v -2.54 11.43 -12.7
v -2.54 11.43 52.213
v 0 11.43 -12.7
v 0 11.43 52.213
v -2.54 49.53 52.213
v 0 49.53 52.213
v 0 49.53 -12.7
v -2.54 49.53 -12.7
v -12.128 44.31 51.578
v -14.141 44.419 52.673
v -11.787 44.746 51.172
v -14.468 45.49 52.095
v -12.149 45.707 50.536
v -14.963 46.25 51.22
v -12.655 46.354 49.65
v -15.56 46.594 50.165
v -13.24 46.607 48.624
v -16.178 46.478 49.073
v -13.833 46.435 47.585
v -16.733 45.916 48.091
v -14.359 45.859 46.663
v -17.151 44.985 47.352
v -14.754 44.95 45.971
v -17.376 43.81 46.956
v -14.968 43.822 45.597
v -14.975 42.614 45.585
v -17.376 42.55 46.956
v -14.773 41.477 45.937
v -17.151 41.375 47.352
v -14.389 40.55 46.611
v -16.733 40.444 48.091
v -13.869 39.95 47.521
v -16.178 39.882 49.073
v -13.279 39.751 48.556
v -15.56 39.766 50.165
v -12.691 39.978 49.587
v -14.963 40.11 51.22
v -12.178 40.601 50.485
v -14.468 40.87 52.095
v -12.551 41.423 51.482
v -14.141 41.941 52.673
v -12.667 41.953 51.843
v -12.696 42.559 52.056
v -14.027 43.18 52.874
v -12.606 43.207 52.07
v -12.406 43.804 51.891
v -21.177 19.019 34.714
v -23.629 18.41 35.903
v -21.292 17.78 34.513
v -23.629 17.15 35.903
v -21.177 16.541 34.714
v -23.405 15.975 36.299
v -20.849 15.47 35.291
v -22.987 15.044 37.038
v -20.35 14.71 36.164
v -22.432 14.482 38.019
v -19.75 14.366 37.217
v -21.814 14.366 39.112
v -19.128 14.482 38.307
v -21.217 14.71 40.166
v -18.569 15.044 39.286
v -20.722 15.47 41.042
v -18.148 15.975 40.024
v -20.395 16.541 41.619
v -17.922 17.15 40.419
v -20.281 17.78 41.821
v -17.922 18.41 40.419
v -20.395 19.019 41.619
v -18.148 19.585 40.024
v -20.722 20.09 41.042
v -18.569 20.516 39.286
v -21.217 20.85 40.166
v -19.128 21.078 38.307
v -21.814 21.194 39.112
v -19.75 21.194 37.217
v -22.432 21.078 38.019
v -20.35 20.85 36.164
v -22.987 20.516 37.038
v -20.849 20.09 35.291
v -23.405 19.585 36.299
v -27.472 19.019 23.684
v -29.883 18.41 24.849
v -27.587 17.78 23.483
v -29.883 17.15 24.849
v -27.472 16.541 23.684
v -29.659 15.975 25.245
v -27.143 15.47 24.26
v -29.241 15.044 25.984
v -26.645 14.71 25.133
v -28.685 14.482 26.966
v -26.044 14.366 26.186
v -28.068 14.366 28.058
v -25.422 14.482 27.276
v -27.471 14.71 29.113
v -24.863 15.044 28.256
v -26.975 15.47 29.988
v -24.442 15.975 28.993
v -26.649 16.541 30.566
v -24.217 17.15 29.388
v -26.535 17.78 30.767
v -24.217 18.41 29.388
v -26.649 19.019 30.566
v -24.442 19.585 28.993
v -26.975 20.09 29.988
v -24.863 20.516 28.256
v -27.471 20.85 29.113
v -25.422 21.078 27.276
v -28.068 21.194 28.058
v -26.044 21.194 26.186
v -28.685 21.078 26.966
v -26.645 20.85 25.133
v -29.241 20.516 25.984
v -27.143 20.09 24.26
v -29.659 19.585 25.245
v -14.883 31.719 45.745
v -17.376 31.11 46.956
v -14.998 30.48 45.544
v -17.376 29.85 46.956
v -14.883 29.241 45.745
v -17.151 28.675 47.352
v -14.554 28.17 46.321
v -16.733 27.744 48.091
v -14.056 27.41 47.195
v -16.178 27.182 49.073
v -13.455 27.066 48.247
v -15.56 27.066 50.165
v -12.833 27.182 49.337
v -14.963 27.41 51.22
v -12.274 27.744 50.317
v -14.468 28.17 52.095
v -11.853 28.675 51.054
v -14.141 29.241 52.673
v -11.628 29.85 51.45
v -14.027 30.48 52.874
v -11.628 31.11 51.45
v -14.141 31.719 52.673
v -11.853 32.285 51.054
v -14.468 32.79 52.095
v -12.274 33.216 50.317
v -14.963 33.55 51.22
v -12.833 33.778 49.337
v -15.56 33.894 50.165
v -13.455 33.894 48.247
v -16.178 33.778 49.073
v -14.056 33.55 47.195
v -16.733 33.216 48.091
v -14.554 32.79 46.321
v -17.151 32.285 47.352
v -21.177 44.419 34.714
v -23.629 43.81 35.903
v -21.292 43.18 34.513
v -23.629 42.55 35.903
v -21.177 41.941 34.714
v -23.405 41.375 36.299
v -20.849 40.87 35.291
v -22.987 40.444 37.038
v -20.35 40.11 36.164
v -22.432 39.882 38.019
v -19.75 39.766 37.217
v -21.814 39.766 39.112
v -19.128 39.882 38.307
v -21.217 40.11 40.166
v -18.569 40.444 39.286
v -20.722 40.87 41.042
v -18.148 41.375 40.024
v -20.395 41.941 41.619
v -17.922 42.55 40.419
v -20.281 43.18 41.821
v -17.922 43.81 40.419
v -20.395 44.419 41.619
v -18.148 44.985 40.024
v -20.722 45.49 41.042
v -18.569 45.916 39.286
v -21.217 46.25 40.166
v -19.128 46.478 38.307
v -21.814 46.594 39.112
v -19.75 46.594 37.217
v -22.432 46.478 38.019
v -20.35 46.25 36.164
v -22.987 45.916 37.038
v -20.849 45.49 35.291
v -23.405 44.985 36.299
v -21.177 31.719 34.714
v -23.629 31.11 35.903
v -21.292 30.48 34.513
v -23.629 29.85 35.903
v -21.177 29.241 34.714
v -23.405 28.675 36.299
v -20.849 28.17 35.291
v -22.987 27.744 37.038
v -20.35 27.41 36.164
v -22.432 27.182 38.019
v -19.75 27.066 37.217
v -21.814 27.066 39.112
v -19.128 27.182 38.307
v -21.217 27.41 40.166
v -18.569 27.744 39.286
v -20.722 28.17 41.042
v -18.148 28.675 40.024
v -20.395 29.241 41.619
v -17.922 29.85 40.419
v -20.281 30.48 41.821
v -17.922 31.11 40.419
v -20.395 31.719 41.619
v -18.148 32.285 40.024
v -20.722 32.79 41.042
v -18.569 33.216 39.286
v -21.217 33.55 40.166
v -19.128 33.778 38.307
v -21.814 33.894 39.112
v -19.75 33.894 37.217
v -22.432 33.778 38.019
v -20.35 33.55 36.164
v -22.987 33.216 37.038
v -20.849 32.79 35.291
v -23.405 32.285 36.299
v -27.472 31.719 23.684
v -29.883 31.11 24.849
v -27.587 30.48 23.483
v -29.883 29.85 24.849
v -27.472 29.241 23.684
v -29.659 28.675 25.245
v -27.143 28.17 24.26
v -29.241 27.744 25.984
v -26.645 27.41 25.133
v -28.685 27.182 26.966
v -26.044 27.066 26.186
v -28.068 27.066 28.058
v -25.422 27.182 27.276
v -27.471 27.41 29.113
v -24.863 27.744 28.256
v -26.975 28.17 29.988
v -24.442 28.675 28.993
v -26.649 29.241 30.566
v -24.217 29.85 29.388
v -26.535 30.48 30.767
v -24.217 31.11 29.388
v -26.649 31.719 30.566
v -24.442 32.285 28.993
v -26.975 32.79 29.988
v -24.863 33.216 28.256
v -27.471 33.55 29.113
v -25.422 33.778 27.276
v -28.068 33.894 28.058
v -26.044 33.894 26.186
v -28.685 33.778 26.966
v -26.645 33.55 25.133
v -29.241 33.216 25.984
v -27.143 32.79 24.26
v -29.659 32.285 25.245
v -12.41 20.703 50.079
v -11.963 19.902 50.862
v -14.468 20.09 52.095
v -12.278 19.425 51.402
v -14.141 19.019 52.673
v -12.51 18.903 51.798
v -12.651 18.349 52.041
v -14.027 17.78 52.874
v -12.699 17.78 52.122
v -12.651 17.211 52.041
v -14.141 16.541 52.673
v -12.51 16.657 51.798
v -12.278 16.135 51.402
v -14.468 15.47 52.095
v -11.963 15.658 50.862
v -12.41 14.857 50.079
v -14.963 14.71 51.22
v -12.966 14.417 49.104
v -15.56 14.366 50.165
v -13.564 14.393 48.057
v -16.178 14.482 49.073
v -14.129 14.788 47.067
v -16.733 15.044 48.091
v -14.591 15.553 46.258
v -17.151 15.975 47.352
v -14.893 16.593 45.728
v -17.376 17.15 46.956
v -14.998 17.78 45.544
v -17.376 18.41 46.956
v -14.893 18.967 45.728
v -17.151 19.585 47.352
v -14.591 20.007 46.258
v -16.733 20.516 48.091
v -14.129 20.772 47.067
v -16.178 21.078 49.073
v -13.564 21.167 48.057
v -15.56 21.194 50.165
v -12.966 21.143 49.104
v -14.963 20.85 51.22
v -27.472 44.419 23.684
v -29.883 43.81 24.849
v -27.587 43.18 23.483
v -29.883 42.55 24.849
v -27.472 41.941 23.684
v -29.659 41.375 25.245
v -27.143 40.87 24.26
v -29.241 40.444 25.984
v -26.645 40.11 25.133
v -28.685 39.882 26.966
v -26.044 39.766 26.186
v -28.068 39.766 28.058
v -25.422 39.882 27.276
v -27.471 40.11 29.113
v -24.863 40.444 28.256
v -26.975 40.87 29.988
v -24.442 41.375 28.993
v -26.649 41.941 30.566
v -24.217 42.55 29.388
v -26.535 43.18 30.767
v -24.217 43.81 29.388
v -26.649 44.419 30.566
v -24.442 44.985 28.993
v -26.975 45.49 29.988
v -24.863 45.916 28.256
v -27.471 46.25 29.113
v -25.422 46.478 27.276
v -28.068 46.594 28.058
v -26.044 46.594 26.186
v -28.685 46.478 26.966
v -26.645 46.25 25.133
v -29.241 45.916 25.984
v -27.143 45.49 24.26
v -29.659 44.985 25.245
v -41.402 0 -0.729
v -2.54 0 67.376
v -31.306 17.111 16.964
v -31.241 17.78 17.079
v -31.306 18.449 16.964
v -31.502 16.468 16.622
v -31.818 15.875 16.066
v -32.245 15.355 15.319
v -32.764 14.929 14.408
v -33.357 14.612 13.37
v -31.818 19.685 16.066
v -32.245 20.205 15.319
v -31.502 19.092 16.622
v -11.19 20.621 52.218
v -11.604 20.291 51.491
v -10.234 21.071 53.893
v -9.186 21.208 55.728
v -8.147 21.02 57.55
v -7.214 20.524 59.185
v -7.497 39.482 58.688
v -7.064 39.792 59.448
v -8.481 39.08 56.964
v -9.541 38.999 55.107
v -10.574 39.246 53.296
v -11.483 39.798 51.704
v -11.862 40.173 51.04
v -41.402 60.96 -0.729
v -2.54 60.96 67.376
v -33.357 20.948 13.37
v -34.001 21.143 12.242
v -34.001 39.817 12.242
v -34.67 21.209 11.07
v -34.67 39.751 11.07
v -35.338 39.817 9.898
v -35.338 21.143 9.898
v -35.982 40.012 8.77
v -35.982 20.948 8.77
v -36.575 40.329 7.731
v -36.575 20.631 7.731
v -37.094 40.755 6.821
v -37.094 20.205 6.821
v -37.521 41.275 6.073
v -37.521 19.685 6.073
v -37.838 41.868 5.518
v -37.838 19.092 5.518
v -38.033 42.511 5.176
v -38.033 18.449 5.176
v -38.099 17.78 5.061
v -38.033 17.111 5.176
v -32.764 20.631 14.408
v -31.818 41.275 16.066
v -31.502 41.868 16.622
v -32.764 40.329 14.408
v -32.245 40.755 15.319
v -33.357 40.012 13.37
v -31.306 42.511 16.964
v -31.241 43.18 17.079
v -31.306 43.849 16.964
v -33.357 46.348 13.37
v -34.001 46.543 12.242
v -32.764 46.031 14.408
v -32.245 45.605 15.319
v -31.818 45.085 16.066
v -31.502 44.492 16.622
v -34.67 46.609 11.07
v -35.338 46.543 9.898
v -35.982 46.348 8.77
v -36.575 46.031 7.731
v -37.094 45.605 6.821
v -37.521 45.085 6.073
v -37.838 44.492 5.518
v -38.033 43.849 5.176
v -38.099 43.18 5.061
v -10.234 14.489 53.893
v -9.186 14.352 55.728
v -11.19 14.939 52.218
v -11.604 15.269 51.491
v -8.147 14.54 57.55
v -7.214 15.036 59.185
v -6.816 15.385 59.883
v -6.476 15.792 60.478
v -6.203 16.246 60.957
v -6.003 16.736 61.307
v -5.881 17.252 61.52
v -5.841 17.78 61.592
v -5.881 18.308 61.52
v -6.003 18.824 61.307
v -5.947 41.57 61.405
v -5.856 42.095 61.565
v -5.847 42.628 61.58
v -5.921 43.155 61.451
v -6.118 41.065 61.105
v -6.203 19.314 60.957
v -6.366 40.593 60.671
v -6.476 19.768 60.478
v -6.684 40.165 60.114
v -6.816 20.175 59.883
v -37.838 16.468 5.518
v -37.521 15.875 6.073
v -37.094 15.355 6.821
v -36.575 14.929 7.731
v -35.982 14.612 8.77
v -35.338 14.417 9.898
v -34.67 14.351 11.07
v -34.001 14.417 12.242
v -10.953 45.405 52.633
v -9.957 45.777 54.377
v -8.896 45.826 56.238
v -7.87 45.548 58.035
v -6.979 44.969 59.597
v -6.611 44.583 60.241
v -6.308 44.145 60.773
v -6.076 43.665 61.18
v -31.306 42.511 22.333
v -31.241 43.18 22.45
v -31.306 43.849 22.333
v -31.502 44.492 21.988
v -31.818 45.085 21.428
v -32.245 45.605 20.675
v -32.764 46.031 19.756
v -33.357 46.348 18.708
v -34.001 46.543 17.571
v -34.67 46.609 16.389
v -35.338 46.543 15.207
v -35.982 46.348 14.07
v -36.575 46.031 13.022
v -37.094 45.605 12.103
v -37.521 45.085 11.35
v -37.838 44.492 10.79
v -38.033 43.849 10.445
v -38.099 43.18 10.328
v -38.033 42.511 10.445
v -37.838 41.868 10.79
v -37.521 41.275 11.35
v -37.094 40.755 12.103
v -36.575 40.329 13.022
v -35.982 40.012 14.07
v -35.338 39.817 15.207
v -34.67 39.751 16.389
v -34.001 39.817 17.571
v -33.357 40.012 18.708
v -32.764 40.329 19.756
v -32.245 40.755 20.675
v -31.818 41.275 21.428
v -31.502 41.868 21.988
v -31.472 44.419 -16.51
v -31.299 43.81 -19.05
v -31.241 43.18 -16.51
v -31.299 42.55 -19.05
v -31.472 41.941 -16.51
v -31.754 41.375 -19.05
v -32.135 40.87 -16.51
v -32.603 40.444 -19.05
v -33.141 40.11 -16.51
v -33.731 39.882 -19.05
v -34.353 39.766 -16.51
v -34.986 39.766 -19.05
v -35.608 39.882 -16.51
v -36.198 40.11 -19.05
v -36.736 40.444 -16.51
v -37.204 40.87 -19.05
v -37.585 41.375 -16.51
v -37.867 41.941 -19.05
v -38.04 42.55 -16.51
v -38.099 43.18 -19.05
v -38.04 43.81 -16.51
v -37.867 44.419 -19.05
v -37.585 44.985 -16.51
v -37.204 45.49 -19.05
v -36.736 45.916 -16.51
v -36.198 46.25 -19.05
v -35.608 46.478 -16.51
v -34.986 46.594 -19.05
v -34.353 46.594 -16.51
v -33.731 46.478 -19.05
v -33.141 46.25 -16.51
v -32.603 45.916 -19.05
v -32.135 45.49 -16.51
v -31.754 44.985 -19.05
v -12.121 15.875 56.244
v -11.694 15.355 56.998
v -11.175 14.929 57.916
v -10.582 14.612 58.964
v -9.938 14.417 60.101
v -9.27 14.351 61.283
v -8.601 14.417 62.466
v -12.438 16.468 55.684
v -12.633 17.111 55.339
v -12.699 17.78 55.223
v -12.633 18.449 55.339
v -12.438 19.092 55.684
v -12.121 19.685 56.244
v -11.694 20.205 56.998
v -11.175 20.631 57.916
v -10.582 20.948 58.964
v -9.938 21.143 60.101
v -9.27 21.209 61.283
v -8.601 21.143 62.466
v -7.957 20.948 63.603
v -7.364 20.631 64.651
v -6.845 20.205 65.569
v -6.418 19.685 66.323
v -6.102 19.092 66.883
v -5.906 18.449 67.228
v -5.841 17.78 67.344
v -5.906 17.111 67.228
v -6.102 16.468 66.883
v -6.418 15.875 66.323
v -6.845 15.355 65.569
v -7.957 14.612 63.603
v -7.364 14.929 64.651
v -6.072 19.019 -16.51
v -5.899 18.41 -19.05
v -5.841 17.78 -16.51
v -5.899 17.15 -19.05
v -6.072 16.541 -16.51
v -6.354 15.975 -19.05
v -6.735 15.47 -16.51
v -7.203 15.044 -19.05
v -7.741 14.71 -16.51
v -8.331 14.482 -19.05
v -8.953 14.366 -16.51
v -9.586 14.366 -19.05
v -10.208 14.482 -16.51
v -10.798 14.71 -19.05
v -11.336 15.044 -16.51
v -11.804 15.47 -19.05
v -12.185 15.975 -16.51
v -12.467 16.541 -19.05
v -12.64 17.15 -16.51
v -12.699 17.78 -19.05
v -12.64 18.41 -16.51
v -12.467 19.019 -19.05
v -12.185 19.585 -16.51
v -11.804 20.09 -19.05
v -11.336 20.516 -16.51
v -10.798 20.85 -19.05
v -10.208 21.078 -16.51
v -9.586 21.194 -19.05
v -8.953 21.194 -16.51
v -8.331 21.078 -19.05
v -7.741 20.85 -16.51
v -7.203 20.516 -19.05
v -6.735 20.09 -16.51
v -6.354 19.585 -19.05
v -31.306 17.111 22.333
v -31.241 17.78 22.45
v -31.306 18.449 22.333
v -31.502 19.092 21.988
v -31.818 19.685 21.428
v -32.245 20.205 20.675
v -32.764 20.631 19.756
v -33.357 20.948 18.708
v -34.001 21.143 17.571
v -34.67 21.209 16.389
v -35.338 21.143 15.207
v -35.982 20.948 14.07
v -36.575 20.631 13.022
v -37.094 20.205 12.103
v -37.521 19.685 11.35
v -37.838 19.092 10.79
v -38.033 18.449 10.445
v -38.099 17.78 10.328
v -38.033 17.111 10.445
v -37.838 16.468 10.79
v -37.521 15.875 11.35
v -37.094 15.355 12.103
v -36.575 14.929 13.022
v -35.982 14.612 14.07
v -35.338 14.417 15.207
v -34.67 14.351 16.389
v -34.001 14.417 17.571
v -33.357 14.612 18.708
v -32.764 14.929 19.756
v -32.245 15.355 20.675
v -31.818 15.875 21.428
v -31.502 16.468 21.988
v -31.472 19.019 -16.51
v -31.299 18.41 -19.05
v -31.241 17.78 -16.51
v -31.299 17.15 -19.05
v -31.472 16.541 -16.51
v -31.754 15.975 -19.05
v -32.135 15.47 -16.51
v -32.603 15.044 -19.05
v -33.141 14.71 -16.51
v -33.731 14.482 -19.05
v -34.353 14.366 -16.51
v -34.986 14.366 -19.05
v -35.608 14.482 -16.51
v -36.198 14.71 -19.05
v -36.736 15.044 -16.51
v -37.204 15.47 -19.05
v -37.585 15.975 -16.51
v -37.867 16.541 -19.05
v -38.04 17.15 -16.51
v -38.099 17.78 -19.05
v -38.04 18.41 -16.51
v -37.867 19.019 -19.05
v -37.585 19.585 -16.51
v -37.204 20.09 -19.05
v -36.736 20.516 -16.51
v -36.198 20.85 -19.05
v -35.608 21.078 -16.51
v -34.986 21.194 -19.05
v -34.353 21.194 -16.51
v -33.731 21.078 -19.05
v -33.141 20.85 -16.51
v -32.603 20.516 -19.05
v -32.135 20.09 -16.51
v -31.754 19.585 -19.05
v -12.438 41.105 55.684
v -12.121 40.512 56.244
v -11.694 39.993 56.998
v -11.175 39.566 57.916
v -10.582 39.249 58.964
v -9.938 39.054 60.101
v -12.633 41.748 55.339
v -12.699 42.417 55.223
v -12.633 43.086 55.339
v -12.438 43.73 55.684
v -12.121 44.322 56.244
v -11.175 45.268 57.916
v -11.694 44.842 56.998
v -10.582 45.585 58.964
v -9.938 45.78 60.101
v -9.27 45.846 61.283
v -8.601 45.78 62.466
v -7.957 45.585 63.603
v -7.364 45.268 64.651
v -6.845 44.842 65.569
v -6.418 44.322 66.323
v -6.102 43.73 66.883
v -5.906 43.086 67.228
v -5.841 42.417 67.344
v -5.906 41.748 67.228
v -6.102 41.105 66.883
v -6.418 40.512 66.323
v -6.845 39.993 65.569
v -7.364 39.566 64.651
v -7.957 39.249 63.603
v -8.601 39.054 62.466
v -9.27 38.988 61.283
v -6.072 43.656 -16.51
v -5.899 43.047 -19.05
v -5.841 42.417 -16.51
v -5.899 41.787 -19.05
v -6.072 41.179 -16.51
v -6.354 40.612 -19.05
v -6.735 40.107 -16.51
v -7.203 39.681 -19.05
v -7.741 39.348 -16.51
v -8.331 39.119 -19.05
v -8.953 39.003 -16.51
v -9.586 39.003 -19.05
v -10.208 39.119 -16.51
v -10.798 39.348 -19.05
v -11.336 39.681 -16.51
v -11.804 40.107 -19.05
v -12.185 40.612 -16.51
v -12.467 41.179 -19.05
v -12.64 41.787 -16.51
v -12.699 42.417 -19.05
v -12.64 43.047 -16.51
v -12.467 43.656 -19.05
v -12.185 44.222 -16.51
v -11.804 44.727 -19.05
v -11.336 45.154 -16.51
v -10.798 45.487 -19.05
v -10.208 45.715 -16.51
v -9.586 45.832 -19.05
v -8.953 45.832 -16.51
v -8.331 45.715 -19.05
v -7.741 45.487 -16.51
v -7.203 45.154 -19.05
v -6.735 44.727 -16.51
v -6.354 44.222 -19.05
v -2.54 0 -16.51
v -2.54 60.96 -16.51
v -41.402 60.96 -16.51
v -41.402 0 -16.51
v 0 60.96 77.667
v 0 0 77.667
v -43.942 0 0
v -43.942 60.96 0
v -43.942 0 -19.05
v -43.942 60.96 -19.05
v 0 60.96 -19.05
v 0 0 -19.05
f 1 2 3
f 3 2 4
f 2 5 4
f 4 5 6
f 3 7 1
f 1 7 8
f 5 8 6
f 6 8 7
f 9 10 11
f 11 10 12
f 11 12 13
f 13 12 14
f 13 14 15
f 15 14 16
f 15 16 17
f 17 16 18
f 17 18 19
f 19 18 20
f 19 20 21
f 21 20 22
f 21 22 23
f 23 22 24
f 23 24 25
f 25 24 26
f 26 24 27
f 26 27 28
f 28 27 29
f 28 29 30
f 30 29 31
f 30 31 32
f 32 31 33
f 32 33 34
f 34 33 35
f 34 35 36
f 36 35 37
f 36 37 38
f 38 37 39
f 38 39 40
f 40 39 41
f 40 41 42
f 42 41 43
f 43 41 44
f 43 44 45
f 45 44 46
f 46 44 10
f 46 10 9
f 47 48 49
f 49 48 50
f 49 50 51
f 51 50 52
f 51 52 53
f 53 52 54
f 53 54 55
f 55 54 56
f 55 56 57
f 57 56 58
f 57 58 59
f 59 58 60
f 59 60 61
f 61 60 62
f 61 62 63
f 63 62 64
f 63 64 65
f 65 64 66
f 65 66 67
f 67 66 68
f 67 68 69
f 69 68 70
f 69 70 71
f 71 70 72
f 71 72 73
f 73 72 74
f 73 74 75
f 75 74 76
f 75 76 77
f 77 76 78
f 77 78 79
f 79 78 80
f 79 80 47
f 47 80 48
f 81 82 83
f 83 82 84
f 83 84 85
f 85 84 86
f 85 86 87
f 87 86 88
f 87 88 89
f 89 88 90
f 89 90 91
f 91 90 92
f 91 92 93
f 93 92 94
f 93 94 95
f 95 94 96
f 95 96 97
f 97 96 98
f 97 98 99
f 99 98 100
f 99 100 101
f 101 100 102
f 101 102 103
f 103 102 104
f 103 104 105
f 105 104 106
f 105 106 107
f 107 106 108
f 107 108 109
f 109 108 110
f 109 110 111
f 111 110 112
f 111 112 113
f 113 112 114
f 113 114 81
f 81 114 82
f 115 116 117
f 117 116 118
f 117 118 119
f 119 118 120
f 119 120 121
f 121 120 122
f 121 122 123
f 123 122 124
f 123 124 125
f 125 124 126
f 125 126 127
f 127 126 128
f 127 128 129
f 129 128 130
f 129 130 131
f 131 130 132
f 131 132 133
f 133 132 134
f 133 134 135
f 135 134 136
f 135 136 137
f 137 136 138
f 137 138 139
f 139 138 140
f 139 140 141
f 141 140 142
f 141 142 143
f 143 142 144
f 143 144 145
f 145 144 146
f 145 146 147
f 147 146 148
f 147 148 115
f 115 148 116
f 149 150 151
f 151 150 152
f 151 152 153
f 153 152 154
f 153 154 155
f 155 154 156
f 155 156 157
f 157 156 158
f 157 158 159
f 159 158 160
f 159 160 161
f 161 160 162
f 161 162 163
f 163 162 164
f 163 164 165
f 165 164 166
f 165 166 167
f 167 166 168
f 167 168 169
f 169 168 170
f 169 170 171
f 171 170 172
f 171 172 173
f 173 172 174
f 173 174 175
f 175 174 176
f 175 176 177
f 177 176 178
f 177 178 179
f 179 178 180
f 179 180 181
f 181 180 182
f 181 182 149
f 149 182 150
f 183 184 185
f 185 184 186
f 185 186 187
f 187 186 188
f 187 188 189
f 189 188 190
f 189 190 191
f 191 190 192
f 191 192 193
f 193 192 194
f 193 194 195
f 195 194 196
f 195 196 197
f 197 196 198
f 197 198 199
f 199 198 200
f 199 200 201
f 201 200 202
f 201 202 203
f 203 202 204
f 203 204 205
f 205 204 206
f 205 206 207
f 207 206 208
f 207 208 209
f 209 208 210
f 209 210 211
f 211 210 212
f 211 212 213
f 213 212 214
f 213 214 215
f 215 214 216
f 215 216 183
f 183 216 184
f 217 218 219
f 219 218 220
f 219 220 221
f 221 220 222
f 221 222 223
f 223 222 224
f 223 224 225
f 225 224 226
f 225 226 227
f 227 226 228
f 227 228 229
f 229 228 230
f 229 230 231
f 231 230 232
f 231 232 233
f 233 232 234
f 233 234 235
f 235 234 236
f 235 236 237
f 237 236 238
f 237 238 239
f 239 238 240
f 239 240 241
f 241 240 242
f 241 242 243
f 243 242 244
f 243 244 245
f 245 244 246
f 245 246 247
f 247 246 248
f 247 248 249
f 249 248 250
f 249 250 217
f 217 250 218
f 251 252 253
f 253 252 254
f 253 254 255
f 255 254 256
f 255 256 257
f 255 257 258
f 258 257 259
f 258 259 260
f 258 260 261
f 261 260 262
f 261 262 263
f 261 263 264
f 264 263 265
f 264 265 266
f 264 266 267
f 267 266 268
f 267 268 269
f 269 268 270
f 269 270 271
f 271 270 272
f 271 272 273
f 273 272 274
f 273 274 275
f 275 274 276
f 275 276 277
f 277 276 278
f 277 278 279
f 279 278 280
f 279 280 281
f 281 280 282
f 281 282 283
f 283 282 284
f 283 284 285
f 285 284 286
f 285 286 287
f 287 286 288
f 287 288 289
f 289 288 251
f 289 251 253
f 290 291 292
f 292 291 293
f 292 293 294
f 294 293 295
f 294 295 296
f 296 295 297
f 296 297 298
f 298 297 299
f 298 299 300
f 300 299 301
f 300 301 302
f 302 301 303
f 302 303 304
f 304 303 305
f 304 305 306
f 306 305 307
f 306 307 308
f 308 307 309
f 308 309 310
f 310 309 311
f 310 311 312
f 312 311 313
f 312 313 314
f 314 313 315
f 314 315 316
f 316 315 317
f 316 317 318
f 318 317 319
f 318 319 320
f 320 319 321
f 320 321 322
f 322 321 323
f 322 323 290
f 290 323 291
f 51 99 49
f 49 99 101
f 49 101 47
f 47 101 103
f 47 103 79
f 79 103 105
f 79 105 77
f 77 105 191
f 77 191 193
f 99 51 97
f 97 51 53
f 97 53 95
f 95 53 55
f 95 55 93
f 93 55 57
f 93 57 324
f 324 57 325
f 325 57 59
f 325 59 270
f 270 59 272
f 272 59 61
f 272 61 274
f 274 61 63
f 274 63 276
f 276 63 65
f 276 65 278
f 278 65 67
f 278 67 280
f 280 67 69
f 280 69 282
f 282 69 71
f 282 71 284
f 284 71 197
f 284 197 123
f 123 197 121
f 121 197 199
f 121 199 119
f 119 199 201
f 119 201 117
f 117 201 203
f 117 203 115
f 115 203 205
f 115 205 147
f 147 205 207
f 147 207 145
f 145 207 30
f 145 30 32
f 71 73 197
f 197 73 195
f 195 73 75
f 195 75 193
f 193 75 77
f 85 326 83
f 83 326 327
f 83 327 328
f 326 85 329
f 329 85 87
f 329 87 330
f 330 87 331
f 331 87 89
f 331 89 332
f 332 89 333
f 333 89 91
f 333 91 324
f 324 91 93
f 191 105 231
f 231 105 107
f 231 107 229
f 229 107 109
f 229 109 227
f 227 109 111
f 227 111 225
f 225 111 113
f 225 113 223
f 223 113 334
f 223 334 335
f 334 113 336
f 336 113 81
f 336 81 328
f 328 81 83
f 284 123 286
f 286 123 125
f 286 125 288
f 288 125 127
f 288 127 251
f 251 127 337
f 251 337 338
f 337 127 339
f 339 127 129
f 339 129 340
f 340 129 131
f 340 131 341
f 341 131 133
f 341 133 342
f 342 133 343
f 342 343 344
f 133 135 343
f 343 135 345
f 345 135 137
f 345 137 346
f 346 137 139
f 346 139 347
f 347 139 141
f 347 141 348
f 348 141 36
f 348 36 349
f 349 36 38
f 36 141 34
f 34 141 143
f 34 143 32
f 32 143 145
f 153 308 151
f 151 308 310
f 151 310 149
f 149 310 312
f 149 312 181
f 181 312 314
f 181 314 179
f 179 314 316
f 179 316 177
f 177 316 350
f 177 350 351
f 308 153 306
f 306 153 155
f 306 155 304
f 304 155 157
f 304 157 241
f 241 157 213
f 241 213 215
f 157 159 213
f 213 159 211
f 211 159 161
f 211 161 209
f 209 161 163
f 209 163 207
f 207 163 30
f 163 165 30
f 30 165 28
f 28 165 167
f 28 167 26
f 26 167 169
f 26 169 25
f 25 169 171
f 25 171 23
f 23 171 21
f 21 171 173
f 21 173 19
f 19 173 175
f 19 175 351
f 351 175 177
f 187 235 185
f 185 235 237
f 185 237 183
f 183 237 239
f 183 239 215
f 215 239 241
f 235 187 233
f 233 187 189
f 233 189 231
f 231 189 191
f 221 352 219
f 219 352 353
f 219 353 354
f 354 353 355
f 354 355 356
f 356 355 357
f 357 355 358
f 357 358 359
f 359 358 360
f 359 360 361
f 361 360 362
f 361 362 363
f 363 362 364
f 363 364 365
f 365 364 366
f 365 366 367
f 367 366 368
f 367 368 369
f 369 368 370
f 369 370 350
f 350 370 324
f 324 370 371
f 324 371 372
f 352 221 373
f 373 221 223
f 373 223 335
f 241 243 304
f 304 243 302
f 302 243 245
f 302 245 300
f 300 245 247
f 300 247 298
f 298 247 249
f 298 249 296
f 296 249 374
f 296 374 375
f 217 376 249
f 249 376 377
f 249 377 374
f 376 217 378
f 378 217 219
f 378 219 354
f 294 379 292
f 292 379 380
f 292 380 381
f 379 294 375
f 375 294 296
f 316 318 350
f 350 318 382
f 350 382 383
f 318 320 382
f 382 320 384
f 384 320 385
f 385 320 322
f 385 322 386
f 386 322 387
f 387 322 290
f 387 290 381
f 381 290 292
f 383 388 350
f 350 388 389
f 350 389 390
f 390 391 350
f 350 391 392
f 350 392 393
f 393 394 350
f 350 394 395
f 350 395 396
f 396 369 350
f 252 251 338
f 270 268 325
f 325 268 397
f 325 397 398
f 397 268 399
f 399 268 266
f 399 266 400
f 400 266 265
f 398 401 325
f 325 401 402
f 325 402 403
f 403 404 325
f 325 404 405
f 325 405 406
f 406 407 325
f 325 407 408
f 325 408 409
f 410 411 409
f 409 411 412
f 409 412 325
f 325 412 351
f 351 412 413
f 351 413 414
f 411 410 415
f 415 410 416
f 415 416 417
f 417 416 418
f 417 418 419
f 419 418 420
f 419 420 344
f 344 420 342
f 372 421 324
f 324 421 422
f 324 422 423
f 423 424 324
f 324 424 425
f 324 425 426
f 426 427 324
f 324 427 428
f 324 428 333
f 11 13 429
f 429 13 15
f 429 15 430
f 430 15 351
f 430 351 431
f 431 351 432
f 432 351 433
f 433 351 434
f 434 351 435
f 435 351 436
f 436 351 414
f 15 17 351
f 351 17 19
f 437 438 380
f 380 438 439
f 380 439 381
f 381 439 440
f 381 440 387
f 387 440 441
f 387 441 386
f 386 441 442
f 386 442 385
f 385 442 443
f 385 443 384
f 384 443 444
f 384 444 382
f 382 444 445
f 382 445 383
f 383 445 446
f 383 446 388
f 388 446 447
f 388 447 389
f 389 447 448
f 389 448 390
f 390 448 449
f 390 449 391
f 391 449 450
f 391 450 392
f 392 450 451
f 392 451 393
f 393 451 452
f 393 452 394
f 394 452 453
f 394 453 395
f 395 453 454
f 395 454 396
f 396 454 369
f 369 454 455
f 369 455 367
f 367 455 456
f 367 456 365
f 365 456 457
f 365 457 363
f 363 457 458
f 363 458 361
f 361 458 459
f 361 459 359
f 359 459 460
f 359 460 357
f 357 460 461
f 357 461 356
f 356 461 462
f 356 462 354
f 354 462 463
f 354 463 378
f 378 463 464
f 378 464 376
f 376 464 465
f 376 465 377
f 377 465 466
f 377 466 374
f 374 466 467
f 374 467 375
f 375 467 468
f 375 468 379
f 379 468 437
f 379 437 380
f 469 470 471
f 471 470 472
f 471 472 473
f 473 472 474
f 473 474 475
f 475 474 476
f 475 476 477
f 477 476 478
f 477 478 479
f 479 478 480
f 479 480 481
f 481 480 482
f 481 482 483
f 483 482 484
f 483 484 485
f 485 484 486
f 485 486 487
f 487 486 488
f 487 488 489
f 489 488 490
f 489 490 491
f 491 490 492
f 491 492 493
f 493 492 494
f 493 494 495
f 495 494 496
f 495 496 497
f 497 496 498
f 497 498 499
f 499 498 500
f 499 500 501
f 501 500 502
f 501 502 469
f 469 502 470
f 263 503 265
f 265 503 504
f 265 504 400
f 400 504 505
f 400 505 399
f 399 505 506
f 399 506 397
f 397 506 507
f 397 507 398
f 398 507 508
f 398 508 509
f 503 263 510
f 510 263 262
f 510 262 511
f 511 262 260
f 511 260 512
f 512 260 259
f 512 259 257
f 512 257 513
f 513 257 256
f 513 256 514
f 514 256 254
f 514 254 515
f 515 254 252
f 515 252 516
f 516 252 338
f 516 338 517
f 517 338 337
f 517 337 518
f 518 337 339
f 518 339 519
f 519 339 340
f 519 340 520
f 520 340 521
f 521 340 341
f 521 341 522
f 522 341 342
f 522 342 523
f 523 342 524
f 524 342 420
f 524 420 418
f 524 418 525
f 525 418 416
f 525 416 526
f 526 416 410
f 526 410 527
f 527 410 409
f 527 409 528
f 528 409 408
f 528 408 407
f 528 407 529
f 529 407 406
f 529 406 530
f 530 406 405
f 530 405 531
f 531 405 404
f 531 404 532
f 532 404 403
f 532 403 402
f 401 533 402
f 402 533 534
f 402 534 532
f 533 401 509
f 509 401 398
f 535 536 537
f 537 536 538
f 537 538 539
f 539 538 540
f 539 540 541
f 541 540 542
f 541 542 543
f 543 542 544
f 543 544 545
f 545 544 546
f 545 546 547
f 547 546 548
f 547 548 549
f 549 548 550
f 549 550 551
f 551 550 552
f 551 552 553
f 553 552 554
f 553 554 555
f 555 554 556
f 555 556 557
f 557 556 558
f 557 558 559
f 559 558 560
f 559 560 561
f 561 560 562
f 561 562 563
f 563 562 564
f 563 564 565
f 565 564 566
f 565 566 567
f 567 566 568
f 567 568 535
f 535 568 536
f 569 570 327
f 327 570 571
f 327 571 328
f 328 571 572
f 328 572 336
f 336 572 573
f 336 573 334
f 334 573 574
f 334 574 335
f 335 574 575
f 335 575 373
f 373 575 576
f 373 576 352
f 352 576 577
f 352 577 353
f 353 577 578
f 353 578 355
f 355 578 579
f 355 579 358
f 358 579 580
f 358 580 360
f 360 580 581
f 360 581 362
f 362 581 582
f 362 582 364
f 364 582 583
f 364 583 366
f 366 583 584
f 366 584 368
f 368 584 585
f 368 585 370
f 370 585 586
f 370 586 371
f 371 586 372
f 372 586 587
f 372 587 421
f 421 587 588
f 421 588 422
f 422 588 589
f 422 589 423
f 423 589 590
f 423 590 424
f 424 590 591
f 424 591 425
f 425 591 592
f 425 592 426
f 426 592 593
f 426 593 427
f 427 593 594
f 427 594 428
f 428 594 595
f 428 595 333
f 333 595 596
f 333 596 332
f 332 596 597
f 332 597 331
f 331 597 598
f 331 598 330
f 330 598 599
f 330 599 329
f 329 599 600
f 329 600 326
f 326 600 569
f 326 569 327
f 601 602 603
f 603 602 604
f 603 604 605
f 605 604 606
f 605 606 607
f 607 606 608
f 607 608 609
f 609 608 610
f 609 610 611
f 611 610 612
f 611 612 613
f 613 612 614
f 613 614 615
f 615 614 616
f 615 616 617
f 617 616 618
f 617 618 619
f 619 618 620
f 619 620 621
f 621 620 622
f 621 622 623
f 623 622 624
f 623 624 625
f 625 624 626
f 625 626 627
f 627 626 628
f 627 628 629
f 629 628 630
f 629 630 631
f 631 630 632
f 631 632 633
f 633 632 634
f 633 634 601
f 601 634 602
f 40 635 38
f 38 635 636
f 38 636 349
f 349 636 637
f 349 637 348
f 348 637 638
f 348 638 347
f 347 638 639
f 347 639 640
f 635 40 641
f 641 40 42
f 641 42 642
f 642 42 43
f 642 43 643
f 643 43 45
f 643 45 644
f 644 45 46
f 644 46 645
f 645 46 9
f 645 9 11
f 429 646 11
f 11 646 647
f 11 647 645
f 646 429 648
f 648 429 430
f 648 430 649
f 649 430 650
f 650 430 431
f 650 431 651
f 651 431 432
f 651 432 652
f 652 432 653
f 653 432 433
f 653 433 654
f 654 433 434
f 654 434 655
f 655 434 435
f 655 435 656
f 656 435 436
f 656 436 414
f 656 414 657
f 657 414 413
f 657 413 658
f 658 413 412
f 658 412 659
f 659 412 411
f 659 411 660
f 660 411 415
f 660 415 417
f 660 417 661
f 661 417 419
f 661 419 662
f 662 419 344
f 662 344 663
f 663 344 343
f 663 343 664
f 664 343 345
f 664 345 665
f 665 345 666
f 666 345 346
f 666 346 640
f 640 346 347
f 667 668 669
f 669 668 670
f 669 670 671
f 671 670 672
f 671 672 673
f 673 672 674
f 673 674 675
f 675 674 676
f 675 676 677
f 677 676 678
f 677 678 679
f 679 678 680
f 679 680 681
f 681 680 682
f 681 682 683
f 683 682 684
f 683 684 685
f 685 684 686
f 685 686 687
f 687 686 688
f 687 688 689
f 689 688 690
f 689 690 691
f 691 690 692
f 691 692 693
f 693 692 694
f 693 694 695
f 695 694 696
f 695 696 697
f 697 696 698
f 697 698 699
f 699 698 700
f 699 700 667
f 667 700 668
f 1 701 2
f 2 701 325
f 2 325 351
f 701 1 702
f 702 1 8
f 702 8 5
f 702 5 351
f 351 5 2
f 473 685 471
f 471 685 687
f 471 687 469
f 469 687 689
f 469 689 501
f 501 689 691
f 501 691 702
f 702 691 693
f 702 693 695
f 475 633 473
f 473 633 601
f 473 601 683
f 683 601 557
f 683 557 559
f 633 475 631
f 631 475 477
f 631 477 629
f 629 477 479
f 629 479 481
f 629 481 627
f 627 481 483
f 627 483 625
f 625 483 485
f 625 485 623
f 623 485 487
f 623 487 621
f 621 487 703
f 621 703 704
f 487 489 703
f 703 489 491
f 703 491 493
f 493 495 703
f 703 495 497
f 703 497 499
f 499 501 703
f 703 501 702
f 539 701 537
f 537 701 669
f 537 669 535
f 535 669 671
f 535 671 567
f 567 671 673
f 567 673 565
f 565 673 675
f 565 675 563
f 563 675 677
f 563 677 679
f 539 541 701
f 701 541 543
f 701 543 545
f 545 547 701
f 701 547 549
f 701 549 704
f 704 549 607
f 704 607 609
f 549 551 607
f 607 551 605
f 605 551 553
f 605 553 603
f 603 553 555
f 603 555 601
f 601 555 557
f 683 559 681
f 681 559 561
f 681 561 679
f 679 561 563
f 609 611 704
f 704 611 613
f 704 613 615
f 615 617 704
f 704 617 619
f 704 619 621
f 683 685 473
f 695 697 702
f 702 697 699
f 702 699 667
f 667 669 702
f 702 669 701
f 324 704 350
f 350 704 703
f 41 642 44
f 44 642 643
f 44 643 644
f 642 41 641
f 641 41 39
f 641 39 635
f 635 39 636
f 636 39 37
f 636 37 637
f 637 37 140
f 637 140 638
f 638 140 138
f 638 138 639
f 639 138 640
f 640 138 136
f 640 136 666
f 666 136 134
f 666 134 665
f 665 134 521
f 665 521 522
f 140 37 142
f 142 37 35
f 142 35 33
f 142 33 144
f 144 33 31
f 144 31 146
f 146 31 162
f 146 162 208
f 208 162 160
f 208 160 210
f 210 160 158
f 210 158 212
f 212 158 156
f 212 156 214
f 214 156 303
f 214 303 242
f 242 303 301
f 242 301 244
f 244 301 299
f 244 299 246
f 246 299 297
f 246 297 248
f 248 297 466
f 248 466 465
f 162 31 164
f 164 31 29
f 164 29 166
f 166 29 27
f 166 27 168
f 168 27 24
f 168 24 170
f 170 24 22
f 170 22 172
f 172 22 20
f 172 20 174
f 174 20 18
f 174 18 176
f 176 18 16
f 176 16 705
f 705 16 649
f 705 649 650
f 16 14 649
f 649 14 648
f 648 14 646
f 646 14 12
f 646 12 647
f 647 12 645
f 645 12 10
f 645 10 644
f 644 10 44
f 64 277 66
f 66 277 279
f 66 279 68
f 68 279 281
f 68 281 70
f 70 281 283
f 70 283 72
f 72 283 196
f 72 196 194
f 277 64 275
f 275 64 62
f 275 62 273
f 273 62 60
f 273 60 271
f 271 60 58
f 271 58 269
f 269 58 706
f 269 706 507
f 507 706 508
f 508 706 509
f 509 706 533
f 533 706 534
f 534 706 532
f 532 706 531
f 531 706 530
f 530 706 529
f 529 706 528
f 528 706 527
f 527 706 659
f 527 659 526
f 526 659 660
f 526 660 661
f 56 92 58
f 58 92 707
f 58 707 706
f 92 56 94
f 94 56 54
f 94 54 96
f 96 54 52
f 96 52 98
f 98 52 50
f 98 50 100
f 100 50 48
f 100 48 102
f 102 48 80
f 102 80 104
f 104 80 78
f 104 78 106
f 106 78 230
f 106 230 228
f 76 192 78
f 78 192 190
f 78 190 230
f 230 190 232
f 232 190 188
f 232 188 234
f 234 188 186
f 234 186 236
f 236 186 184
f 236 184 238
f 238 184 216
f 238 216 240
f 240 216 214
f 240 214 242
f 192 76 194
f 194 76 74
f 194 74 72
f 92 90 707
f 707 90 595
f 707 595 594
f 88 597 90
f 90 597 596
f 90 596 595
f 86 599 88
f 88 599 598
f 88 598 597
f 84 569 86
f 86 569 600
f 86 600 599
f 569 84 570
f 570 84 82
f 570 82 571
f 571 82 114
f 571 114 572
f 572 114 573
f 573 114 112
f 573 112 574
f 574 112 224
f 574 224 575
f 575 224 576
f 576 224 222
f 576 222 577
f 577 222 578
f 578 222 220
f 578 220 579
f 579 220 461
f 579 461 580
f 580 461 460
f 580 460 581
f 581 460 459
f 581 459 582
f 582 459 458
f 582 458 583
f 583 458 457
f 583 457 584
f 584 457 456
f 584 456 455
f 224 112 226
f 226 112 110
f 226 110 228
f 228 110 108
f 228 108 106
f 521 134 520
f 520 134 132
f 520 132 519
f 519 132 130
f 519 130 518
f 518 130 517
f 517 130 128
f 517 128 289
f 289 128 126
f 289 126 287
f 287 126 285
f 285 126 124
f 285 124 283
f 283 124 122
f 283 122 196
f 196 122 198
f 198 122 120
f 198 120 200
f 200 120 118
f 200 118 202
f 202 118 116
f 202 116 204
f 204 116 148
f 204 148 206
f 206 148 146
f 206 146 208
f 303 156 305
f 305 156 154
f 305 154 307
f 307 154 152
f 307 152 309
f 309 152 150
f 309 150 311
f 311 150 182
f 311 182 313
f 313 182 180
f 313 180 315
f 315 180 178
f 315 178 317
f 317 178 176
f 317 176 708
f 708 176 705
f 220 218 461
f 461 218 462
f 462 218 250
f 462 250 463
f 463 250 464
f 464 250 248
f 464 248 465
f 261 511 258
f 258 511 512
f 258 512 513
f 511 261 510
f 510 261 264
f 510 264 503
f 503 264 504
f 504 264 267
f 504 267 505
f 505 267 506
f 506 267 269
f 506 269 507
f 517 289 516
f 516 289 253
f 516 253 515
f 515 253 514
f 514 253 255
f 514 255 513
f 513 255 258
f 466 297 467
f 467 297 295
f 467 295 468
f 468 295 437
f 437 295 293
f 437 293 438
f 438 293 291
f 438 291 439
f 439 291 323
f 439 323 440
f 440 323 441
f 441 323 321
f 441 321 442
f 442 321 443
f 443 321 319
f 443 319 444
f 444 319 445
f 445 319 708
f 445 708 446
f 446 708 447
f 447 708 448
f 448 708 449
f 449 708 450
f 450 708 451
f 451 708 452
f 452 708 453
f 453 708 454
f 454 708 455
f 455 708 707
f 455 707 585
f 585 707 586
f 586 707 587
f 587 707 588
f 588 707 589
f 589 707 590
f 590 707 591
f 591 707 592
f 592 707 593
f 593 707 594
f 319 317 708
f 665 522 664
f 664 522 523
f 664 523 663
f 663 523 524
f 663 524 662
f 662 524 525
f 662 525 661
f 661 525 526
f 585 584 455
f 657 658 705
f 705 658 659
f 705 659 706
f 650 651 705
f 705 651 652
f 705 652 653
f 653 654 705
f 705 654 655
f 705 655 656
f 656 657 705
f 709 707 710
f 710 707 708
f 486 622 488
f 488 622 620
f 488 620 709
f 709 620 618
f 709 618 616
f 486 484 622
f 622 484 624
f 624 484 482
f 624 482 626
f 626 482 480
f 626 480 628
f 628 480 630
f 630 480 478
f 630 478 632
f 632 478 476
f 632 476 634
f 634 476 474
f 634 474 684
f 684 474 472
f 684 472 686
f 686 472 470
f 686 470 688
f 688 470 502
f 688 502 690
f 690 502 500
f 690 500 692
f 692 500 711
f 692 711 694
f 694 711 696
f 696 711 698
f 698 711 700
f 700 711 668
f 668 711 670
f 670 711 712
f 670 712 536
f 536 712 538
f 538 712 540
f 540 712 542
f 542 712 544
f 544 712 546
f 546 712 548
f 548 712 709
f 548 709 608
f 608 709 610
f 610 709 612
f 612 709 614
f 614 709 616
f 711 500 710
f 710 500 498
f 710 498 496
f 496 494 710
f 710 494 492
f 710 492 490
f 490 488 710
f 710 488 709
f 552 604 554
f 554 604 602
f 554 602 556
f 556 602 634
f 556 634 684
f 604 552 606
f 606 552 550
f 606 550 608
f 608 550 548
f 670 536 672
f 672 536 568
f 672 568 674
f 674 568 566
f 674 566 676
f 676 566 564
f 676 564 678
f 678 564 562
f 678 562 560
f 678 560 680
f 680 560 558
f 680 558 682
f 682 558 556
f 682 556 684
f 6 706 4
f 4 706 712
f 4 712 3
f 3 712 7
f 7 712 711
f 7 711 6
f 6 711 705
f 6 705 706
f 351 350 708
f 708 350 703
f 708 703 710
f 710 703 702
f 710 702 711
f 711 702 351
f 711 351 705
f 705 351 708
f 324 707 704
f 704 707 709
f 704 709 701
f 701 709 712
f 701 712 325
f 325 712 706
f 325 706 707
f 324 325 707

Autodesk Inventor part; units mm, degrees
ref_plane "YZ Plane" through (0, 0, 0) normal (1, 0, 0) x (0, 1, 0)
ref_plane "XZ Plane" through (0, 0, 0) normal (0, 1, 0) x (-1, 0, 0)
ref_plane "XY Plane" through (0, 0, 0) normal (0, 0, 1) x (1, 0, 0)
sketch "Sketch1" plane through (0, 0, 0) normal (0, 1, 0) x (-1, 0, 0)
  line L0 (0, 0) -> (0, -19.05)
  line L1 (0, -19.05) -> (43.942, -19.05)
  line L2 (43.942, -19.05) -> (43.942, 0)
  line L3 (43.942, 0) -> (0, 0)
  line L4 (0, 0) -> (0, 155.3344)
  line L5 (43.942, 0) -> (0, 77.6672)
  dimension "d0" = 19.05
  dimension "d1" = 43.942
  dimension "d2" = 60.5
extrude "Extrusion1" add sketch "Sketch1" along normal blind 60.96
sketch "Sketch6" plane through (0, 60.96, 0) normal (0, 1, 0) x (1, 0, 0)
  line L0 (0, 19.05) -> (-43.942, 19.05) projected
  line L1 (0, -76.952) -> (0, 19.05)
  line L2 (0, 19.05) -> (-43.942, 19.05)
  line L3 (-43.942, 19.05) -> (-43.942, 0.0548)
  line L4 (-43.942, 0.0548) -> (0, -76.952)
  line L5 (-2.54, -67.3758) -> (-2.54, 16.51)
  line L6 (-2.54, 16.51) -> (-41.402, 16.51)
  line L7 (-41.402, 16.51) -> (-41.402, 0.7285)
  line L8 (-41.402, 0.7285) -> (-2.54, -67.3758)
  point P0 (0, 0)
  dimension "d26" = 2.54
extrude "Extrusion5" cut sketch "Sketch6" against normal blind 76.2 contours L8 L7 L6 L5
sketch "Sketch2" plane through (0, 0, 77.6672) normal (-0.8703557, 0, 0.4924236) x (0.4924236, 0, 0.8703557)
  line L0 (0, 60.96) -> (-84.1784, 60.96) projected
  line L1 (0, 60.96) -> (-14.1351, 60.96)
  line L2 (-14.1351, 60.96) -> (-14.1351, 0)
  line L3 (0, 0) -> (-84.1784, 0) projected
  line L4 (-14.1351, 60.96) -> (-75.0951, 60.96)
  line L5 (-75.0951, 60.96) -> (-75.0951, 0)
  line L6 (-75.0951, 0) -> (-14.1351, 0)
  line L7 (-14.1351, 60.96) -> (-44.6151, 60.96)
  line L8 (-44.6151, 60.96) -> (-44.6151, 0)
  line L9 (-75.0951, 30.48) -> (-14.1351, 30.48)
  line L10 (-44.6151, 30.48) -> (-19.6139, 30.48)
  line L11 (-44.6151, 30.48) -> (-31.9151, 30.48)
  line L12 (-31.9151, 30.48) -> (-31.9151, 43.18)
  line L13 (-31.9151, 43.18) -> (-44.6151, 43.18)
  line L14 (-44.6151, 43.18) -> (-57.3151, 43.18)
  line L15 (-57.3151, 43.18) -> (-57.3151, 30.48)
  line L16 (-57.3151, 30.48) -> (-57.3151, 17.78)
  line L17 (-57.3151, 17.78) -> (-44.6151, 17.78)
  line L18 (-44.6151, 17.78) -> (-31.9151, 17.78)
  line L19 (-31.9151, 30.48) -> (-31.9151, 17.78)
  circle A0 centre (-44.6151, 30.48) radius 3.429
  circle A1 centre (-31.9151, 30.48) radius 3.429
  circle A2 centre (-31.9151, 17.78) radius 3.429
  circle A3 centre (-44.6151, 17.78) radius 3.429
  circle A4 centre (-57.3151, 17.78) radius 3.429
  circle A5 centre (-57.3151, 30.48) radius 3.429
  circle A6 centre (-57.3151, 43.18) radius 3.429
  circle A7 centre (-44.6151, 43.18) radius 3.429
  circle A8 centre (-31.9151, 43.18) radius 3.429
  point P0 (-67.5981, 0)
  dimension "d5" = 14.1351
  dimension "d6" = 60.96
  dimension "d7" = 30.48
  dimension "d8" = 25.0012
  dimension "d9" = 12.7
  dimension "d10" = 12.7
  dimension "d11" = 12.7
  dimension "d12" = 12.7
  dimension "d29" = 6.858
  dimension "d30" = 6.858
  dimension "d31" = 6.858
  dimension "d32" = 6.858
  dimension "d33" = 6.858
  dimension "d34" = 6.858
  dimension "d35" = 6.858
  dimension "d36" = 6.858
  dimension "d37" = 6.858
hole "Hole1" [suppressed]
extrude "Extrusion6" [suppressed]
sketch "Sketch7" plane through (0, 0, 77.6672) normal (1, 0, 0) x (0, 0, -1)
  line L0 (96.7172, 0) -> (96.7172, 60.96) projected
  line L1 (96.7172, 60.96) -> (96.7172, 0)
  line L2 (96.7172, 0) -> (19.1044, 0)
  line L3 (19.1044, 0) -> (19.1044, 60.96)
  line L4 (19.1044, 60.96) -> (96.7172, 60.96)
  line L5 (90.3672, 54.61) -> (90.3672, 6.35)
  line L6 (90.3672, 6.35) -> (25.4544, 6.35)
  line L7 (25.4544, 6.35) -> (25.4544, 54.61)
  line L8 (25.4544, 54.61) -> (90.3672, 54.61)
  point P0 (77.6672, 0)
  dimension "d40" = 6.35
extrude "Extrusion7" cut sketch "Sketch7" against normal blind 5.08 contours L5 L6 L7 L8
sketch "Sketch8" plane through (0, 0, -19.05) normal (0, 0, -1) x (-1, 0, 0)
  line L0 (41.402, 60.96) -> (2.54, 60.96) projected
  line L1 (21.971, 60.96) -> (21.971, 0)
  line L2 (21.971, 0) -> (21.9695, 30.48)
  line L3 (21.971, 0) -> (21.9695, 30.48)
  line L4 (21.9695, 30.48) -> (0, 30.48)
  line L5 (0, 30.48) -> (43.942, 30.48)
  line L6 (43.942, 0) -> (43.942, 60.96) projected
  line L7 (21.9695, 30.48) -> (34.6695, 30.48)
  line L8 (34.6695, 30.48) -> (34.6695, 43.18)
  line L9 (34.6695, 43.18) -> (9.2695, 43.18)
  line L10 (9.2695, 43.18) -> (9.2695, 17.78)
  line L11 (9.2695, 17.78) -> (34.6695, 17.78)
  circle A0 centre (9.2695, 42.4173) radius 3.429
  circle A1 centre (34.6695, 43.18) radius 3.429
  circle A2 centre (9.2695, 17.78) radius 3.429
  circle A3 centre (34.6695, 17.78) radius 3.429
  point P0 (0, 0)
  dimension "d43" = 12.7
  dimension "d44" = 12.7
  dimension "d45" = 25.4
  dimension "d47" = 25.4
  dimension "d48" = 25.4
  dimension "d49" = 6.858
  dimension "d50" = 6.858
  dimension "d51" = 6.858
  dimension "d52" = 6.858
extrude "Extrusion8" [suppressed]
extrude "Extrusion9" cut sketch "Sketch8" against normal blind 101.6 contours A1 L8 L9 | L9 L8 A1 | A0 L10 L9 | L9 L10 A0 | A2 L10 L11 | L11 L10 A2 | A3
extrude "Extrusion10" cut sketch "Sketch2" against normal blind 25.4 contours A7 L13 L8 | L8 L14 A7 | L13 A7 L8 | L8 A7 L14 | A1 L19 L9 | L9 L12 A1 | A5 L15 L9 | L9 L16 A5 | A8 L12 L13 | L13 L12 A8 | A6 L15 L14 | L14 L15 A6 | A3 L17 L8 | L8 L18 A3 | L19 A1 L9 | L9 A1 L12 | L15 A5 L9 | L9 A5 L16 | A0 L9 L8 | L8 L9 A0 | L17 A3 L8 | L8 A3 L18 | A2 L18 L19 | L19 L18 A2 | A4 L17 L16 | L16 L17 A4 | L9 A0 L8 | L8 A0 L9
thicken "Thicken2" operation add thickness 5.08 both sides no extend neighbours no toward (0, -1, 0) faces at (-1.6933, 54.61, 30.5752)
thicken "Thicken3" operation add thickness 5.08 both sides no extend neighbours no toward (0, 1, 0) faces at (-0.8467, 6.35, 30.5752)
properties part number "AngleMount"
